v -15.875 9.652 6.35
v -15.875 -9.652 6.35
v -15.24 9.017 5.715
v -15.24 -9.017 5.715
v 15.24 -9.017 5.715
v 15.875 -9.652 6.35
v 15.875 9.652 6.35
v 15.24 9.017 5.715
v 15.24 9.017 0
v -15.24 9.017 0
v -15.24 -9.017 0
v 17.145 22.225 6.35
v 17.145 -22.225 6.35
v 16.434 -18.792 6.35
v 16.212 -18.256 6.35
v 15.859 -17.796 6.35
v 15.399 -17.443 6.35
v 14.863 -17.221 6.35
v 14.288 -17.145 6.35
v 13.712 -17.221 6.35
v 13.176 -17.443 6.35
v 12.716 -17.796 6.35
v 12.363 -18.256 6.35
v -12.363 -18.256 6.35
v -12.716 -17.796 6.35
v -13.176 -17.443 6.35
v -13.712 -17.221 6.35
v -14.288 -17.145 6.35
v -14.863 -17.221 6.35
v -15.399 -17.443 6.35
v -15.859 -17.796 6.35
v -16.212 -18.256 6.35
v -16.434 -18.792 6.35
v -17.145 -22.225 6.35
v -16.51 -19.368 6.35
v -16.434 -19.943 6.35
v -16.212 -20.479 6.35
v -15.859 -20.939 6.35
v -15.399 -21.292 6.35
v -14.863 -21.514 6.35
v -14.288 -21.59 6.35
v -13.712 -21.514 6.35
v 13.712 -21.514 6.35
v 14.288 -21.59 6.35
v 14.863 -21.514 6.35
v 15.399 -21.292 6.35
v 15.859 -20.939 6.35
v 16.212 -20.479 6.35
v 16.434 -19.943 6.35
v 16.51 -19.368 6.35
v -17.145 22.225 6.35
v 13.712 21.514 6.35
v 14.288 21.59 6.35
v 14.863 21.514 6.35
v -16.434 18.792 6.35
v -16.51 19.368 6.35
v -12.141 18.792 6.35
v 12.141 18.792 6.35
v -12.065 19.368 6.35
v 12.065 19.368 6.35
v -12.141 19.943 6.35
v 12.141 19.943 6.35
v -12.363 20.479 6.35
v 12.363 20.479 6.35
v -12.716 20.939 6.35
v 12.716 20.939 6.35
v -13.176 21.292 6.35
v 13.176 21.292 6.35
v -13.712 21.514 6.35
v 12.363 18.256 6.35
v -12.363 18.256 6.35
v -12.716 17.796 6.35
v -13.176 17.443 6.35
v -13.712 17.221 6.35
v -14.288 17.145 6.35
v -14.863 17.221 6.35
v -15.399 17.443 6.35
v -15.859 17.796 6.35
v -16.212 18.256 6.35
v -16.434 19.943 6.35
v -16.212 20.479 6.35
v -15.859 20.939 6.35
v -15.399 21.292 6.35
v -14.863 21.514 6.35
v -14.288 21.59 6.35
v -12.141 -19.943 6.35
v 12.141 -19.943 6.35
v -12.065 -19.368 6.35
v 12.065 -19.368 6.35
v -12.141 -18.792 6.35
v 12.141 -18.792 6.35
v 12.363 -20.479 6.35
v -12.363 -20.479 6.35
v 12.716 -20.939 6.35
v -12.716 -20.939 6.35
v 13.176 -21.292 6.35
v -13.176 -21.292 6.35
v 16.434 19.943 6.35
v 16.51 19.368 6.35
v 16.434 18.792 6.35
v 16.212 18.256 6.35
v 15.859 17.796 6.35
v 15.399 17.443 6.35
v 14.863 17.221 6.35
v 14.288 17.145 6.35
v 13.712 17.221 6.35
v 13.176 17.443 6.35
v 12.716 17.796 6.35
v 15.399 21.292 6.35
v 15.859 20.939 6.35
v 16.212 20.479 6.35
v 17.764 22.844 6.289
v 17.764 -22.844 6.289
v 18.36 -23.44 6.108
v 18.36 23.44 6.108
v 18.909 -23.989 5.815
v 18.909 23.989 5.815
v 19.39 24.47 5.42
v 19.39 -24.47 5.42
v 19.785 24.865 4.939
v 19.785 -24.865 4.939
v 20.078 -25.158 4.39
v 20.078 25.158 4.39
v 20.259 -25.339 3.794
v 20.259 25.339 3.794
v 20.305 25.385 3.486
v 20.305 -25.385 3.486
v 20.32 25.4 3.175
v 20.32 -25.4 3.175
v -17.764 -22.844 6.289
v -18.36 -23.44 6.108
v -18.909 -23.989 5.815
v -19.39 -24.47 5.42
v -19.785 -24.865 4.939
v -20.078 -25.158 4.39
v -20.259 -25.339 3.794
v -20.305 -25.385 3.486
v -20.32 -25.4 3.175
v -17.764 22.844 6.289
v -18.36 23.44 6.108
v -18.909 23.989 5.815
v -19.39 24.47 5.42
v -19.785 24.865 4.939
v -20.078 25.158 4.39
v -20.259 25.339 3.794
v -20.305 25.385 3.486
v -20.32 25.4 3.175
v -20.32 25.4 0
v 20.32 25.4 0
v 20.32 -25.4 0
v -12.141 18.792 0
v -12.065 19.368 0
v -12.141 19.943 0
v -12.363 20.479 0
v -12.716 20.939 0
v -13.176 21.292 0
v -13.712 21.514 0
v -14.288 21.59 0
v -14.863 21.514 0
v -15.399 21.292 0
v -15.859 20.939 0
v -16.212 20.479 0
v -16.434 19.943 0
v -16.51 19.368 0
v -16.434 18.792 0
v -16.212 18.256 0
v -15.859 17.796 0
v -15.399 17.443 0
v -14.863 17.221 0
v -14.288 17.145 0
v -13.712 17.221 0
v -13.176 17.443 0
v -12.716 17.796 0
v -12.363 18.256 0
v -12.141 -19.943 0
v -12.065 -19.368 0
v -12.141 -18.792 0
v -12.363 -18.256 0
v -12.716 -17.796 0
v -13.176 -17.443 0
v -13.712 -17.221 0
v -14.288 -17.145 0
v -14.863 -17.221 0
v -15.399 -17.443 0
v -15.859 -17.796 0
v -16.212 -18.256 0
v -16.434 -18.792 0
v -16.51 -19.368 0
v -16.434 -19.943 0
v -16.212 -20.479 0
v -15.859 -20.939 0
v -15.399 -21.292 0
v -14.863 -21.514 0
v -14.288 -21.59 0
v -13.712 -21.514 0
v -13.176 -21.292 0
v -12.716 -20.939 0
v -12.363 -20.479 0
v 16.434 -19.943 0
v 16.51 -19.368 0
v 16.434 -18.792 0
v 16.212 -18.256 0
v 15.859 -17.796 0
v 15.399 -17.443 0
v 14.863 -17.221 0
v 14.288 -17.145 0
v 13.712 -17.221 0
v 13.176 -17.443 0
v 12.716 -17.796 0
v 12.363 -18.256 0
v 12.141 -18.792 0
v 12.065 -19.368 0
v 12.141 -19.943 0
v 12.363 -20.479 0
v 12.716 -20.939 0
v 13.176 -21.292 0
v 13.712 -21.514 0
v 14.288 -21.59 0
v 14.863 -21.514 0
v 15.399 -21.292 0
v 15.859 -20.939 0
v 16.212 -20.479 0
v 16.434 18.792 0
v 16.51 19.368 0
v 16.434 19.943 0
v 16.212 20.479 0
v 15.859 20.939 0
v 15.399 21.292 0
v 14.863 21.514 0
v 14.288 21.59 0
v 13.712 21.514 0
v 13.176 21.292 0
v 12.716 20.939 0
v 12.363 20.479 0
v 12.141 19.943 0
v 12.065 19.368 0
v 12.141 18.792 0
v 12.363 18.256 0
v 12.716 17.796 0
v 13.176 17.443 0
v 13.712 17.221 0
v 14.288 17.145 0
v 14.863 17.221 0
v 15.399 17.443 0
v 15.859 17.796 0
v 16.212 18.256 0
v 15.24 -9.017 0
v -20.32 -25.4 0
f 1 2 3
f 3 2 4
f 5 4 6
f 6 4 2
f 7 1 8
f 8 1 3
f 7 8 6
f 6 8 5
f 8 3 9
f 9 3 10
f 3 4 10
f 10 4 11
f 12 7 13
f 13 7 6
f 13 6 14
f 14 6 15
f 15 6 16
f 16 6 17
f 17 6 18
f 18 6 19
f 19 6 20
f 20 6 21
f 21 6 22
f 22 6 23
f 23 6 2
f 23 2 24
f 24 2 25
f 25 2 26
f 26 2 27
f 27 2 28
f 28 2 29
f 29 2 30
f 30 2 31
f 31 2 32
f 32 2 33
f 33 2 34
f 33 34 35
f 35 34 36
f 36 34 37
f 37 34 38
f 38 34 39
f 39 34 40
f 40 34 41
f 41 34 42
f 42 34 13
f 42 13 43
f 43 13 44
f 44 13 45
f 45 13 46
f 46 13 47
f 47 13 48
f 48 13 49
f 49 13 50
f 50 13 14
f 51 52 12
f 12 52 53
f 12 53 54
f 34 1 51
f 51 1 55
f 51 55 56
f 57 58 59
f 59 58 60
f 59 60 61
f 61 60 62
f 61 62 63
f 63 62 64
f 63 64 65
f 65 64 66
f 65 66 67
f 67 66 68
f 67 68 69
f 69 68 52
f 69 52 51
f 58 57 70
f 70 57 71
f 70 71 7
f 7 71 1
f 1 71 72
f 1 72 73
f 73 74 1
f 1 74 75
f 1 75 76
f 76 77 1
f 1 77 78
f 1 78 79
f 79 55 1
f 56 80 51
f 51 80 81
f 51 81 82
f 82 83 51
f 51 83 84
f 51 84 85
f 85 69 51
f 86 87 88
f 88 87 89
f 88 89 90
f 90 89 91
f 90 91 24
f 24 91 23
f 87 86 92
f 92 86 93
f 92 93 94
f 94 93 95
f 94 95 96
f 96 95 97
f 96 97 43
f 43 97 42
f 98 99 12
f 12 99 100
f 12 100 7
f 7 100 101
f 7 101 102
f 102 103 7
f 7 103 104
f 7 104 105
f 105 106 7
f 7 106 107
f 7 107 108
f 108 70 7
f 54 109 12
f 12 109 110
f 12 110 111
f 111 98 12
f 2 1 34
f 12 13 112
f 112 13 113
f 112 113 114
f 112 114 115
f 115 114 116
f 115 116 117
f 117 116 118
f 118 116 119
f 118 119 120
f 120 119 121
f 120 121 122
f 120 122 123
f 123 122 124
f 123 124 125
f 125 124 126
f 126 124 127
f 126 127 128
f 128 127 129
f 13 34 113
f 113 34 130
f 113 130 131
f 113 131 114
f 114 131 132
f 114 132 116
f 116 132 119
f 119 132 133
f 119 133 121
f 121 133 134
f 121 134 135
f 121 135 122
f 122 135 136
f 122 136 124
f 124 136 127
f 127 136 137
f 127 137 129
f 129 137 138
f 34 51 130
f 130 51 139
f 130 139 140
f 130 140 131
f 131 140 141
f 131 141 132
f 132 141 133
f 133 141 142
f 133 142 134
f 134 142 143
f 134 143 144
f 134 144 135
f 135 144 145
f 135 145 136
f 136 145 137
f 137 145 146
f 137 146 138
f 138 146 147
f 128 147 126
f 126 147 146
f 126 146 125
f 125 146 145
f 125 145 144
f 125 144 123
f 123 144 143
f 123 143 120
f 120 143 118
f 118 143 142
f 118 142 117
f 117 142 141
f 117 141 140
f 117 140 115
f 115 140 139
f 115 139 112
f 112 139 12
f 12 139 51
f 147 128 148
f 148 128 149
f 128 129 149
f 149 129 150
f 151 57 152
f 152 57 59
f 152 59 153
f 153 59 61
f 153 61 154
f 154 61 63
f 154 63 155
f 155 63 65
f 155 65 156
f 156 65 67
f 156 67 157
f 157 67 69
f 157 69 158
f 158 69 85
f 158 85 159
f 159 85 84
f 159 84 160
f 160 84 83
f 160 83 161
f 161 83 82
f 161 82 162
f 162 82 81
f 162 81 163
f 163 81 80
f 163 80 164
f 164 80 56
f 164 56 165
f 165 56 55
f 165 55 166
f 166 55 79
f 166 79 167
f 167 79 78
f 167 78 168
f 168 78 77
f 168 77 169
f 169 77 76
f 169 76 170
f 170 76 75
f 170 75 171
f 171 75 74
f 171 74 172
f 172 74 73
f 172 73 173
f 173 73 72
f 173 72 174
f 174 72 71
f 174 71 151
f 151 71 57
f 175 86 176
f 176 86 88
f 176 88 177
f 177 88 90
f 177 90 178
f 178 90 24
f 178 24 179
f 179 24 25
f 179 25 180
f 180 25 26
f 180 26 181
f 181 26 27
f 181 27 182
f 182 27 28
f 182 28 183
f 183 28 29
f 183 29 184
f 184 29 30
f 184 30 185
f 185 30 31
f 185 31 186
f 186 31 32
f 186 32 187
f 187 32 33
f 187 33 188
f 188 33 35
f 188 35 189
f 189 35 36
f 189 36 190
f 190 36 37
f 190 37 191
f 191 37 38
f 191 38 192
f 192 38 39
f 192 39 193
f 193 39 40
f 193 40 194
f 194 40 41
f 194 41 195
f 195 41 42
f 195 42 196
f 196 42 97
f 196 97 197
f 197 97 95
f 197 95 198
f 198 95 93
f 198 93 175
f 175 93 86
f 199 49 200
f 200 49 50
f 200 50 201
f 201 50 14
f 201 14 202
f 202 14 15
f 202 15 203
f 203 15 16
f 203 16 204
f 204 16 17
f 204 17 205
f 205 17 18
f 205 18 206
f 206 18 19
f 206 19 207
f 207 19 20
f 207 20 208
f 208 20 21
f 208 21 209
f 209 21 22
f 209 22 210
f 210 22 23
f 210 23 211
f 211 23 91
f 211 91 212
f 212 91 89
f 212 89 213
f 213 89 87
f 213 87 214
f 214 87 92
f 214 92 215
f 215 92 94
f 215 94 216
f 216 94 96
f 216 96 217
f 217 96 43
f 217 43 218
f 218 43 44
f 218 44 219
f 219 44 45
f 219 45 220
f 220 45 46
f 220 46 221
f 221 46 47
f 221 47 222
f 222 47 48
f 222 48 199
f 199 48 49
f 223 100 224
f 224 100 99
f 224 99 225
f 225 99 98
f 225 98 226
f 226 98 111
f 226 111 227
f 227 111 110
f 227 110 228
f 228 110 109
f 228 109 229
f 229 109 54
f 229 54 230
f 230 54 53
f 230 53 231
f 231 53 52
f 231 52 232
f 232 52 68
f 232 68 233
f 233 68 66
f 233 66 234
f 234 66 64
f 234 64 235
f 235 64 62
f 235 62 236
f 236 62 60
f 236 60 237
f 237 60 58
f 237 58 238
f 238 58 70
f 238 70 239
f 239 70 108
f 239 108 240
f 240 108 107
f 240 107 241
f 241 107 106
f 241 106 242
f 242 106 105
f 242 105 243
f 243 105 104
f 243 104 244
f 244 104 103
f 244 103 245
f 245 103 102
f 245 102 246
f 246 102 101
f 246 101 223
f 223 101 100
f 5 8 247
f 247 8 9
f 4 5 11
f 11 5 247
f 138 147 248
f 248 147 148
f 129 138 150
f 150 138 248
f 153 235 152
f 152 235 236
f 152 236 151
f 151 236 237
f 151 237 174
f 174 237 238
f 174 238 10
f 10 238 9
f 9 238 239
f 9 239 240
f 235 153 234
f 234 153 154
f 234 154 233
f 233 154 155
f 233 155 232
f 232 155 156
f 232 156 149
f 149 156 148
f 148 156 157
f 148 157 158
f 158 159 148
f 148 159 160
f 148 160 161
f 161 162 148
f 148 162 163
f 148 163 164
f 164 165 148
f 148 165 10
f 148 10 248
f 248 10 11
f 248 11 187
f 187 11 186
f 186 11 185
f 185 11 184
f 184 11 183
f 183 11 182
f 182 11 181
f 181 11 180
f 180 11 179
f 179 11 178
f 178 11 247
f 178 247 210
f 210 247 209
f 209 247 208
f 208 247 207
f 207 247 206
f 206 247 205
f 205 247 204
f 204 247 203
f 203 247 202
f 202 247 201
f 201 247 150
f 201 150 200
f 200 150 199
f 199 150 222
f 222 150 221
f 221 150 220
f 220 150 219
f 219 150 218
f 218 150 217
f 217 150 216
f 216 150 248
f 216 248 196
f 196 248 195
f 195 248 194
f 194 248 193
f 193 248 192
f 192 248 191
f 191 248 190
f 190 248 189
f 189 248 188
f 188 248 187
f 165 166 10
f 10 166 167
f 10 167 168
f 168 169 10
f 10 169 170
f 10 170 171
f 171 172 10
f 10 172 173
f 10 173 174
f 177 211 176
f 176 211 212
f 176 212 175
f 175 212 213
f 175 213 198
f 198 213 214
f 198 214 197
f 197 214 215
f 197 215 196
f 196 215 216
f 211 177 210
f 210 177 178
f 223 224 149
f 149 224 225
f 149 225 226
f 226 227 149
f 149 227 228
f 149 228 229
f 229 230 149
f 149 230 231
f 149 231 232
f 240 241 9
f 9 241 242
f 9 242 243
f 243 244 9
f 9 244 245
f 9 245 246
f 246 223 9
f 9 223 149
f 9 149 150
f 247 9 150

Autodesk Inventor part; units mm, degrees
ref_plane "YZ Plane" through (0, 0, 0) normal (1, 0, 0) x (0, 1, 0)
ref_plane "XZ Plane" through (0, 0, 0) normal (0, 1, 0) x (-1, 0, 0)
ref_plane "XY Plane" through (0, 0, 0) normal (0, 0, 1) x (1, 0, 0)
sketch "Sketch1" plane through (0, 0, 0) normal (0, 0, 1) x (1, 0, 0)
  line L0 (20.32, -25.4) -> (-20.32, -25.4)
  line L1 (-20.32, -25.4) -> (-20.32, 25.4)
  line L2 (-20.32, 25.4) -> (20.32, 25.4)
  line L3 (20.32, 25.4) -> (20.32, -25.4)
  line L4 (20.32, -25.4) -> (-20.32, 25.4) construction
  line L5 (-20.32, -25.4) -> (20.32, 25.4) construction
  line L6 (15.24, -9.017) -> (-15.24, -9.017)
  line L7 (-15.24, -9.017) -> (-15.24, 9.017)
  line L8 (-15.24, 9.017) -> (15.24, 9.017)
  line L9 (15.24, 9.017) -> (15.24, -9.017)
  line L10 (15.24, -9.017) -> (-15.24, 9.017) construction
  line L11 (-15.24, -9.017) -> (15.24, 9.017) construction
  point P0 (0, 0)
  point P1 (0, 0)
  point P2 (0, 0)
  point P3 (0, 0)
  point P4 (0, 0)
  dimension "d0" = 40.64
  dimension "d1" = 30.48
  dimension "d3" = 50.8
  dimension "d4" = 18.034
extrude "Extrusion1" add sketch "Sketch1" along normal blind 6.35
sketch "Sketch2" plane through (0, 0, 6.35) normal (0, 0, 1) x (1, 0, 0)
  circle A0 centre (-14.2875, -19.3675) radius 2.2225
  circle A1 centre (14.2875, -19.3675) radius 2.2225
  line L0 (-20.32, -25.4) -> (20.32, -25.4) projected
  line L1 (-15.24, -9.017) -> (-15.24, 9.017) projected
  line L2 (-15.24, 9.017) -> (15.24, 9.017) projected
  line L3 (15.24, 9.017) -> (15.24, -9.017) projected
  line L4 (15.24, -9.017) -> (-15.24, -9.017) projected
  line L5 (-20.32, -25.4) -> (20.32, -25.4) projected
  line L6 (20.32, -25.4) -> (20.32, 25.4) projected
  line L7 (20.32, 25.4) -> (-20.32, 25.4) projected
  line L8 (-20.32, 25.4) -> (-20.32, -25.4) projected
  circle A2 centre (-14.2875, 19.3675) radius 2.2225
  circle A3 centre (14.2875, 19.3675) radius 2.2225
  point P0 (0, 0)
  dimension "d7" = 4.445
  dimension "d8" = 3.81
  dimension "d10" = 3.81
  dimension "d11" = 3.81
  dimension "d18" = 3.81
extrude "Extrusion2" cut sketch "Sketch2" against normal through all contours A0 | A1 | A2 | A3
fillet "Fillet1" radius 3.175 4 edges at (-20.32, 0, 6.35) (0, 25.4, 6.35) (20.32, 0, 6.35) (0, -25.4, 6.35)
chamfer "Chamfer1" distance 0.635 angle 45 4 edges at (-15.24, 0, 6.35) (0, 9.017, 6.35) (15.24, 0, 6.35) (0, -9.017, 6.35)
equation "\"d10\" = d11"
equation "\"d11\" = d8"
equation "\"d18\" = d8"
properties part number "Molex Mount"
